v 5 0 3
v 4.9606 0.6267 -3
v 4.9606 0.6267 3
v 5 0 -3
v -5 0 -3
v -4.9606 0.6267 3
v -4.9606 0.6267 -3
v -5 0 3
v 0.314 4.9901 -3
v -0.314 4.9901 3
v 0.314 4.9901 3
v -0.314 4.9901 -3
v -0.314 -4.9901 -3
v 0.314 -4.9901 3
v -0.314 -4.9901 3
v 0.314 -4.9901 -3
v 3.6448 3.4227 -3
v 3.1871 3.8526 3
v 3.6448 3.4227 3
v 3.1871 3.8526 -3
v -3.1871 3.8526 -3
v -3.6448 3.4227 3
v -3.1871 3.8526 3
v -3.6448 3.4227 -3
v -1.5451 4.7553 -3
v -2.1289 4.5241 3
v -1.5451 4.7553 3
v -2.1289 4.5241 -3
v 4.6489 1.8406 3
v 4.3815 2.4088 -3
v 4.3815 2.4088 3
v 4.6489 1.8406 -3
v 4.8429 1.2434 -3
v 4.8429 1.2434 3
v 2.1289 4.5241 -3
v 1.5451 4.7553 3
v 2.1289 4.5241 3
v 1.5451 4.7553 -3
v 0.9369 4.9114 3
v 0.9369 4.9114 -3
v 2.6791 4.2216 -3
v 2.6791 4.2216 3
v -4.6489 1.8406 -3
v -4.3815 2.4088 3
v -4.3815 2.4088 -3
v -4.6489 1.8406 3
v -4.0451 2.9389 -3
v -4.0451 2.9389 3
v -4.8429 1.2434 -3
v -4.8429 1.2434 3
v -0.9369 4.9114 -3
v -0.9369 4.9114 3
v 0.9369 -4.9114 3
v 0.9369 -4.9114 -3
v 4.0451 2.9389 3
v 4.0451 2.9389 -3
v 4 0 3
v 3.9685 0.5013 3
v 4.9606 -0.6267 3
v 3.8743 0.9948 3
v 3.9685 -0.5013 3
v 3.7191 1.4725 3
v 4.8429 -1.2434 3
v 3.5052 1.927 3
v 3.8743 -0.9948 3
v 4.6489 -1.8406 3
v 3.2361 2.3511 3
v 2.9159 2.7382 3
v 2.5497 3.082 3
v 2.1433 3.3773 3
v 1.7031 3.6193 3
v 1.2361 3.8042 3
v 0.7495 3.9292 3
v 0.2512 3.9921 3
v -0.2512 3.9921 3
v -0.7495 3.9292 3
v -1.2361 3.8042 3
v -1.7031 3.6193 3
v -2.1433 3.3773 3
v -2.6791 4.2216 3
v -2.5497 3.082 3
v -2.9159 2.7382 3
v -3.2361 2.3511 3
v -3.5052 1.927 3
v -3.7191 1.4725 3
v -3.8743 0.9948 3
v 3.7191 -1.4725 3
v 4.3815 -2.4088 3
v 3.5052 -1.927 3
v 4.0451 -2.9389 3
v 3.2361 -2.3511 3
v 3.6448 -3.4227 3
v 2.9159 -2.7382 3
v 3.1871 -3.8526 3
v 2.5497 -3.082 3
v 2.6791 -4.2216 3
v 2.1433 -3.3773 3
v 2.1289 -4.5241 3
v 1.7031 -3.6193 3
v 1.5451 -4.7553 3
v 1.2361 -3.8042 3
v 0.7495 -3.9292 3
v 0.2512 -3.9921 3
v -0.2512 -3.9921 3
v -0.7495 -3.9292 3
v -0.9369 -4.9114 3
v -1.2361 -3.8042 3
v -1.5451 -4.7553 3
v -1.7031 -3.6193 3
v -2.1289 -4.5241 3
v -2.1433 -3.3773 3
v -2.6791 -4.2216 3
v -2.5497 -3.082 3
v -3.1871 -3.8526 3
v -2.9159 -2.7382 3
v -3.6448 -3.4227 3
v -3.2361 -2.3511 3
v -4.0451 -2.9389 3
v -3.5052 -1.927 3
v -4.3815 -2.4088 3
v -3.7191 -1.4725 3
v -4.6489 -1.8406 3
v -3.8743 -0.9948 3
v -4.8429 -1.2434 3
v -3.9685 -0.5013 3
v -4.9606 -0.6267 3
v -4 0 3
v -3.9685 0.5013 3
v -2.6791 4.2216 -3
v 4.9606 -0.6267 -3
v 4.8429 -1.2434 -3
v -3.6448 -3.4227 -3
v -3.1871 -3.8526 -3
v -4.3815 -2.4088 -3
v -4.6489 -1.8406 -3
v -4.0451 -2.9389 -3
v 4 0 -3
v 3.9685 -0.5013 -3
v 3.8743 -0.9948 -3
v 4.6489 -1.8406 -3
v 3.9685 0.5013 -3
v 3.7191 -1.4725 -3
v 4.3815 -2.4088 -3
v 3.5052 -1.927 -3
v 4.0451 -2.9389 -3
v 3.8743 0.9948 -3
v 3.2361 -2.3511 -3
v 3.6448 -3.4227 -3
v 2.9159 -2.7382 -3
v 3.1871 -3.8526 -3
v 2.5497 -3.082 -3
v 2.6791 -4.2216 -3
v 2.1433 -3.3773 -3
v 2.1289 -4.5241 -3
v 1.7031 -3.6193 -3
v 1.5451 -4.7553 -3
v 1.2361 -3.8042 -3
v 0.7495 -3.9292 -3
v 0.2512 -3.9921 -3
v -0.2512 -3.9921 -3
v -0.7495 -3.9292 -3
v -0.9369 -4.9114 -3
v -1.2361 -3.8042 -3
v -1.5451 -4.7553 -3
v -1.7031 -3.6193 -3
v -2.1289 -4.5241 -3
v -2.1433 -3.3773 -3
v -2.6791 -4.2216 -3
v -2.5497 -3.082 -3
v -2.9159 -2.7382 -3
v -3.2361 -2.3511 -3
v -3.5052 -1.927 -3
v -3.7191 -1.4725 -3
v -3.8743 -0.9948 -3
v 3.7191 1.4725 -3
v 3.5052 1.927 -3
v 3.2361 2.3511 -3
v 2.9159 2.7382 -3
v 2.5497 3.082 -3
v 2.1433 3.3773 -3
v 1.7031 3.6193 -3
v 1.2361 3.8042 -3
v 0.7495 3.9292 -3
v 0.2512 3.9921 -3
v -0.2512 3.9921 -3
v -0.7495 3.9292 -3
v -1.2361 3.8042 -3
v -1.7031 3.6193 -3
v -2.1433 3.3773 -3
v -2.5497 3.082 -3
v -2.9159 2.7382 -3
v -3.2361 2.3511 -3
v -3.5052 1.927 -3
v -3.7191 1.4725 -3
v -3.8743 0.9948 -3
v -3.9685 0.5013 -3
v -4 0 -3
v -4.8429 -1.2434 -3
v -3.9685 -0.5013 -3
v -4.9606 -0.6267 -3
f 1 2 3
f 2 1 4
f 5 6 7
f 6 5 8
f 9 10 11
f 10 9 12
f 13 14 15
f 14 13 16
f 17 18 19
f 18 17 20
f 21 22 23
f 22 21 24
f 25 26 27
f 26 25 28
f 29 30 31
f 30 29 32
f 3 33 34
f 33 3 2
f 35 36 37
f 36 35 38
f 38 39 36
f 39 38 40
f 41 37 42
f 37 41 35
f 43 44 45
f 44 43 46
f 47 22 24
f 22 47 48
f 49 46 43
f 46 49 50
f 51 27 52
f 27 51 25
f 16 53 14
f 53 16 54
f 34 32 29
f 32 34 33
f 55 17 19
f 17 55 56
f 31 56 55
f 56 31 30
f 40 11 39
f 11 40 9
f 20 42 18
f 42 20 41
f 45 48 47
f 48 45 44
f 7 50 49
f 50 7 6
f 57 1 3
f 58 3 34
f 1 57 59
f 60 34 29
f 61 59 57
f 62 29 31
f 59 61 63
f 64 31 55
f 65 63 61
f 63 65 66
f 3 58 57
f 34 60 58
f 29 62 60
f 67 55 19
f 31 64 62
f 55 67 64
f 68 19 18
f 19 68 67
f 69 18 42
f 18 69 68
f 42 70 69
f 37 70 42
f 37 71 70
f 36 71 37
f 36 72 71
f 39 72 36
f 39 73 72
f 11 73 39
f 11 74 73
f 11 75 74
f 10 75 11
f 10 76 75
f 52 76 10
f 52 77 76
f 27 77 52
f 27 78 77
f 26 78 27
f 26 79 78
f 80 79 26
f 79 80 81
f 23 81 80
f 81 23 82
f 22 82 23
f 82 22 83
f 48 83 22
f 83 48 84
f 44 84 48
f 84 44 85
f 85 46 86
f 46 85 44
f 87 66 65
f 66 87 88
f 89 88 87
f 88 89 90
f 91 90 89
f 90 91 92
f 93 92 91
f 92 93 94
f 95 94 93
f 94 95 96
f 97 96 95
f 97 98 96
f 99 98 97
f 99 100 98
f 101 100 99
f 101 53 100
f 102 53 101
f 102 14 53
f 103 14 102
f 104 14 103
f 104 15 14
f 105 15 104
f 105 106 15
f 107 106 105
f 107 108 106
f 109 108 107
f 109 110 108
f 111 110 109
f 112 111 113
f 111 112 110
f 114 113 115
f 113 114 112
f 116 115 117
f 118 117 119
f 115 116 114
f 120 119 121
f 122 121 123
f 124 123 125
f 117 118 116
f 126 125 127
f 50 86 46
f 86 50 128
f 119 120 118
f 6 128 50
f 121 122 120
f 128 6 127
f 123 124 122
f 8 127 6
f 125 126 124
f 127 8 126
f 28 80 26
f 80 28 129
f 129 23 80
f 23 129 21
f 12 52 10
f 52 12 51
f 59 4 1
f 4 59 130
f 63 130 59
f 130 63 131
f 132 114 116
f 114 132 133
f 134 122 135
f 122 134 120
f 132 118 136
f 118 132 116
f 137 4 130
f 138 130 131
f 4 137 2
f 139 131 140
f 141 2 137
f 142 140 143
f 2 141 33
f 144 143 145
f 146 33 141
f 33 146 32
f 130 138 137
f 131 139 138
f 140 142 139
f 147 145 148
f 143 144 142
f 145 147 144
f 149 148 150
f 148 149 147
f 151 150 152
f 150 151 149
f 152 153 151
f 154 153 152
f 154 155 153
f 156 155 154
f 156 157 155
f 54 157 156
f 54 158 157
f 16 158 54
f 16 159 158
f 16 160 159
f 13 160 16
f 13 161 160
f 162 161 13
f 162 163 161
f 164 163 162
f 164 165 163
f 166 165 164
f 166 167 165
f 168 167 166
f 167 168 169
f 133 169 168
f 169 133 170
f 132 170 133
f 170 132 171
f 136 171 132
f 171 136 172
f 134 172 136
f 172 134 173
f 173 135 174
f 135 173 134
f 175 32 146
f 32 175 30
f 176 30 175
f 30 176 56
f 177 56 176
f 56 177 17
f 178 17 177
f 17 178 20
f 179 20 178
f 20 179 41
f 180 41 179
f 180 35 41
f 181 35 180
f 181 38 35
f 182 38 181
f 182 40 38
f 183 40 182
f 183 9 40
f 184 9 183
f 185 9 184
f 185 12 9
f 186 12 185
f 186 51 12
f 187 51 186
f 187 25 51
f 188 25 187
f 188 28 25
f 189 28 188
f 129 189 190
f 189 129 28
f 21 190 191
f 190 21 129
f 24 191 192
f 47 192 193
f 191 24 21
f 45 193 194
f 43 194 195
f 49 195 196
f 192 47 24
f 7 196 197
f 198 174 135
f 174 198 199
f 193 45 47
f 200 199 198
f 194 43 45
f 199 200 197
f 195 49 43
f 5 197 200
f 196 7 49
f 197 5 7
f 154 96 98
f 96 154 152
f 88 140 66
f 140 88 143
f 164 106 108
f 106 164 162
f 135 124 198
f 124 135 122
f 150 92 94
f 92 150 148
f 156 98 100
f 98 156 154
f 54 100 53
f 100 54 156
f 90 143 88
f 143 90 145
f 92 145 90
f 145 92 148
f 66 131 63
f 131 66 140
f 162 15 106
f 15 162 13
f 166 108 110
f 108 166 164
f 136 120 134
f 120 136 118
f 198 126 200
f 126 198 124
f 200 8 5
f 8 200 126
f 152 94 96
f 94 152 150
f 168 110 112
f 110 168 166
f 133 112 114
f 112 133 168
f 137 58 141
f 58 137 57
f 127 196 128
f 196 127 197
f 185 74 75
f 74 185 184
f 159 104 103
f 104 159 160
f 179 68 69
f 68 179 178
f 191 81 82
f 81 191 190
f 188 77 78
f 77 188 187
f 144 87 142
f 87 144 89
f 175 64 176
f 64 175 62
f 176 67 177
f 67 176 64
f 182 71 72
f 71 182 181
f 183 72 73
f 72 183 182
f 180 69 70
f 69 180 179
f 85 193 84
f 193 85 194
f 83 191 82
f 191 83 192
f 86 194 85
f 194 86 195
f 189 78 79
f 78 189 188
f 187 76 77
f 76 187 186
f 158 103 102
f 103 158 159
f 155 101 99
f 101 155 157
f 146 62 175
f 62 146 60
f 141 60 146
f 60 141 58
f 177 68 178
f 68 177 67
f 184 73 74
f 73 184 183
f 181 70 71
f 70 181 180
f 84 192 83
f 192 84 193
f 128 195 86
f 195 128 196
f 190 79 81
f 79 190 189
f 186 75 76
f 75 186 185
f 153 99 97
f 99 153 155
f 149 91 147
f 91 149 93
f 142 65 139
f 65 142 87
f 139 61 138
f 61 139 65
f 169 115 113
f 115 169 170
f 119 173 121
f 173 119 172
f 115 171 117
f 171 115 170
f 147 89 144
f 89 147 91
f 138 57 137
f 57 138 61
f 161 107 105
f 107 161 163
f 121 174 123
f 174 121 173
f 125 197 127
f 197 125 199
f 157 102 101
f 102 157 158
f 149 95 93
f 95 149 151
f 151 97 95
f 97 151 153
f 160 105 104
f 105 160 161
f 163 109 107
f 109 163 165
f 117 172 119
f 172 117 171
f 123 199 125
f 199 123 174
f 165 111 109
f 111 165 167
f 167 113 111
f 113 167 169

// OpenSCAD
$fn = 50;


difference() {
	union() {
		translate(v = [0, 0, -3.0000000000]) {
			cylinder(h = 6, r = 5.0000000000);
		}
	}
	union() {
		translate(v = [0, 0, -100.0000000000]) {
			cylinder(h = 200, r = 4);
		}
	}
}
